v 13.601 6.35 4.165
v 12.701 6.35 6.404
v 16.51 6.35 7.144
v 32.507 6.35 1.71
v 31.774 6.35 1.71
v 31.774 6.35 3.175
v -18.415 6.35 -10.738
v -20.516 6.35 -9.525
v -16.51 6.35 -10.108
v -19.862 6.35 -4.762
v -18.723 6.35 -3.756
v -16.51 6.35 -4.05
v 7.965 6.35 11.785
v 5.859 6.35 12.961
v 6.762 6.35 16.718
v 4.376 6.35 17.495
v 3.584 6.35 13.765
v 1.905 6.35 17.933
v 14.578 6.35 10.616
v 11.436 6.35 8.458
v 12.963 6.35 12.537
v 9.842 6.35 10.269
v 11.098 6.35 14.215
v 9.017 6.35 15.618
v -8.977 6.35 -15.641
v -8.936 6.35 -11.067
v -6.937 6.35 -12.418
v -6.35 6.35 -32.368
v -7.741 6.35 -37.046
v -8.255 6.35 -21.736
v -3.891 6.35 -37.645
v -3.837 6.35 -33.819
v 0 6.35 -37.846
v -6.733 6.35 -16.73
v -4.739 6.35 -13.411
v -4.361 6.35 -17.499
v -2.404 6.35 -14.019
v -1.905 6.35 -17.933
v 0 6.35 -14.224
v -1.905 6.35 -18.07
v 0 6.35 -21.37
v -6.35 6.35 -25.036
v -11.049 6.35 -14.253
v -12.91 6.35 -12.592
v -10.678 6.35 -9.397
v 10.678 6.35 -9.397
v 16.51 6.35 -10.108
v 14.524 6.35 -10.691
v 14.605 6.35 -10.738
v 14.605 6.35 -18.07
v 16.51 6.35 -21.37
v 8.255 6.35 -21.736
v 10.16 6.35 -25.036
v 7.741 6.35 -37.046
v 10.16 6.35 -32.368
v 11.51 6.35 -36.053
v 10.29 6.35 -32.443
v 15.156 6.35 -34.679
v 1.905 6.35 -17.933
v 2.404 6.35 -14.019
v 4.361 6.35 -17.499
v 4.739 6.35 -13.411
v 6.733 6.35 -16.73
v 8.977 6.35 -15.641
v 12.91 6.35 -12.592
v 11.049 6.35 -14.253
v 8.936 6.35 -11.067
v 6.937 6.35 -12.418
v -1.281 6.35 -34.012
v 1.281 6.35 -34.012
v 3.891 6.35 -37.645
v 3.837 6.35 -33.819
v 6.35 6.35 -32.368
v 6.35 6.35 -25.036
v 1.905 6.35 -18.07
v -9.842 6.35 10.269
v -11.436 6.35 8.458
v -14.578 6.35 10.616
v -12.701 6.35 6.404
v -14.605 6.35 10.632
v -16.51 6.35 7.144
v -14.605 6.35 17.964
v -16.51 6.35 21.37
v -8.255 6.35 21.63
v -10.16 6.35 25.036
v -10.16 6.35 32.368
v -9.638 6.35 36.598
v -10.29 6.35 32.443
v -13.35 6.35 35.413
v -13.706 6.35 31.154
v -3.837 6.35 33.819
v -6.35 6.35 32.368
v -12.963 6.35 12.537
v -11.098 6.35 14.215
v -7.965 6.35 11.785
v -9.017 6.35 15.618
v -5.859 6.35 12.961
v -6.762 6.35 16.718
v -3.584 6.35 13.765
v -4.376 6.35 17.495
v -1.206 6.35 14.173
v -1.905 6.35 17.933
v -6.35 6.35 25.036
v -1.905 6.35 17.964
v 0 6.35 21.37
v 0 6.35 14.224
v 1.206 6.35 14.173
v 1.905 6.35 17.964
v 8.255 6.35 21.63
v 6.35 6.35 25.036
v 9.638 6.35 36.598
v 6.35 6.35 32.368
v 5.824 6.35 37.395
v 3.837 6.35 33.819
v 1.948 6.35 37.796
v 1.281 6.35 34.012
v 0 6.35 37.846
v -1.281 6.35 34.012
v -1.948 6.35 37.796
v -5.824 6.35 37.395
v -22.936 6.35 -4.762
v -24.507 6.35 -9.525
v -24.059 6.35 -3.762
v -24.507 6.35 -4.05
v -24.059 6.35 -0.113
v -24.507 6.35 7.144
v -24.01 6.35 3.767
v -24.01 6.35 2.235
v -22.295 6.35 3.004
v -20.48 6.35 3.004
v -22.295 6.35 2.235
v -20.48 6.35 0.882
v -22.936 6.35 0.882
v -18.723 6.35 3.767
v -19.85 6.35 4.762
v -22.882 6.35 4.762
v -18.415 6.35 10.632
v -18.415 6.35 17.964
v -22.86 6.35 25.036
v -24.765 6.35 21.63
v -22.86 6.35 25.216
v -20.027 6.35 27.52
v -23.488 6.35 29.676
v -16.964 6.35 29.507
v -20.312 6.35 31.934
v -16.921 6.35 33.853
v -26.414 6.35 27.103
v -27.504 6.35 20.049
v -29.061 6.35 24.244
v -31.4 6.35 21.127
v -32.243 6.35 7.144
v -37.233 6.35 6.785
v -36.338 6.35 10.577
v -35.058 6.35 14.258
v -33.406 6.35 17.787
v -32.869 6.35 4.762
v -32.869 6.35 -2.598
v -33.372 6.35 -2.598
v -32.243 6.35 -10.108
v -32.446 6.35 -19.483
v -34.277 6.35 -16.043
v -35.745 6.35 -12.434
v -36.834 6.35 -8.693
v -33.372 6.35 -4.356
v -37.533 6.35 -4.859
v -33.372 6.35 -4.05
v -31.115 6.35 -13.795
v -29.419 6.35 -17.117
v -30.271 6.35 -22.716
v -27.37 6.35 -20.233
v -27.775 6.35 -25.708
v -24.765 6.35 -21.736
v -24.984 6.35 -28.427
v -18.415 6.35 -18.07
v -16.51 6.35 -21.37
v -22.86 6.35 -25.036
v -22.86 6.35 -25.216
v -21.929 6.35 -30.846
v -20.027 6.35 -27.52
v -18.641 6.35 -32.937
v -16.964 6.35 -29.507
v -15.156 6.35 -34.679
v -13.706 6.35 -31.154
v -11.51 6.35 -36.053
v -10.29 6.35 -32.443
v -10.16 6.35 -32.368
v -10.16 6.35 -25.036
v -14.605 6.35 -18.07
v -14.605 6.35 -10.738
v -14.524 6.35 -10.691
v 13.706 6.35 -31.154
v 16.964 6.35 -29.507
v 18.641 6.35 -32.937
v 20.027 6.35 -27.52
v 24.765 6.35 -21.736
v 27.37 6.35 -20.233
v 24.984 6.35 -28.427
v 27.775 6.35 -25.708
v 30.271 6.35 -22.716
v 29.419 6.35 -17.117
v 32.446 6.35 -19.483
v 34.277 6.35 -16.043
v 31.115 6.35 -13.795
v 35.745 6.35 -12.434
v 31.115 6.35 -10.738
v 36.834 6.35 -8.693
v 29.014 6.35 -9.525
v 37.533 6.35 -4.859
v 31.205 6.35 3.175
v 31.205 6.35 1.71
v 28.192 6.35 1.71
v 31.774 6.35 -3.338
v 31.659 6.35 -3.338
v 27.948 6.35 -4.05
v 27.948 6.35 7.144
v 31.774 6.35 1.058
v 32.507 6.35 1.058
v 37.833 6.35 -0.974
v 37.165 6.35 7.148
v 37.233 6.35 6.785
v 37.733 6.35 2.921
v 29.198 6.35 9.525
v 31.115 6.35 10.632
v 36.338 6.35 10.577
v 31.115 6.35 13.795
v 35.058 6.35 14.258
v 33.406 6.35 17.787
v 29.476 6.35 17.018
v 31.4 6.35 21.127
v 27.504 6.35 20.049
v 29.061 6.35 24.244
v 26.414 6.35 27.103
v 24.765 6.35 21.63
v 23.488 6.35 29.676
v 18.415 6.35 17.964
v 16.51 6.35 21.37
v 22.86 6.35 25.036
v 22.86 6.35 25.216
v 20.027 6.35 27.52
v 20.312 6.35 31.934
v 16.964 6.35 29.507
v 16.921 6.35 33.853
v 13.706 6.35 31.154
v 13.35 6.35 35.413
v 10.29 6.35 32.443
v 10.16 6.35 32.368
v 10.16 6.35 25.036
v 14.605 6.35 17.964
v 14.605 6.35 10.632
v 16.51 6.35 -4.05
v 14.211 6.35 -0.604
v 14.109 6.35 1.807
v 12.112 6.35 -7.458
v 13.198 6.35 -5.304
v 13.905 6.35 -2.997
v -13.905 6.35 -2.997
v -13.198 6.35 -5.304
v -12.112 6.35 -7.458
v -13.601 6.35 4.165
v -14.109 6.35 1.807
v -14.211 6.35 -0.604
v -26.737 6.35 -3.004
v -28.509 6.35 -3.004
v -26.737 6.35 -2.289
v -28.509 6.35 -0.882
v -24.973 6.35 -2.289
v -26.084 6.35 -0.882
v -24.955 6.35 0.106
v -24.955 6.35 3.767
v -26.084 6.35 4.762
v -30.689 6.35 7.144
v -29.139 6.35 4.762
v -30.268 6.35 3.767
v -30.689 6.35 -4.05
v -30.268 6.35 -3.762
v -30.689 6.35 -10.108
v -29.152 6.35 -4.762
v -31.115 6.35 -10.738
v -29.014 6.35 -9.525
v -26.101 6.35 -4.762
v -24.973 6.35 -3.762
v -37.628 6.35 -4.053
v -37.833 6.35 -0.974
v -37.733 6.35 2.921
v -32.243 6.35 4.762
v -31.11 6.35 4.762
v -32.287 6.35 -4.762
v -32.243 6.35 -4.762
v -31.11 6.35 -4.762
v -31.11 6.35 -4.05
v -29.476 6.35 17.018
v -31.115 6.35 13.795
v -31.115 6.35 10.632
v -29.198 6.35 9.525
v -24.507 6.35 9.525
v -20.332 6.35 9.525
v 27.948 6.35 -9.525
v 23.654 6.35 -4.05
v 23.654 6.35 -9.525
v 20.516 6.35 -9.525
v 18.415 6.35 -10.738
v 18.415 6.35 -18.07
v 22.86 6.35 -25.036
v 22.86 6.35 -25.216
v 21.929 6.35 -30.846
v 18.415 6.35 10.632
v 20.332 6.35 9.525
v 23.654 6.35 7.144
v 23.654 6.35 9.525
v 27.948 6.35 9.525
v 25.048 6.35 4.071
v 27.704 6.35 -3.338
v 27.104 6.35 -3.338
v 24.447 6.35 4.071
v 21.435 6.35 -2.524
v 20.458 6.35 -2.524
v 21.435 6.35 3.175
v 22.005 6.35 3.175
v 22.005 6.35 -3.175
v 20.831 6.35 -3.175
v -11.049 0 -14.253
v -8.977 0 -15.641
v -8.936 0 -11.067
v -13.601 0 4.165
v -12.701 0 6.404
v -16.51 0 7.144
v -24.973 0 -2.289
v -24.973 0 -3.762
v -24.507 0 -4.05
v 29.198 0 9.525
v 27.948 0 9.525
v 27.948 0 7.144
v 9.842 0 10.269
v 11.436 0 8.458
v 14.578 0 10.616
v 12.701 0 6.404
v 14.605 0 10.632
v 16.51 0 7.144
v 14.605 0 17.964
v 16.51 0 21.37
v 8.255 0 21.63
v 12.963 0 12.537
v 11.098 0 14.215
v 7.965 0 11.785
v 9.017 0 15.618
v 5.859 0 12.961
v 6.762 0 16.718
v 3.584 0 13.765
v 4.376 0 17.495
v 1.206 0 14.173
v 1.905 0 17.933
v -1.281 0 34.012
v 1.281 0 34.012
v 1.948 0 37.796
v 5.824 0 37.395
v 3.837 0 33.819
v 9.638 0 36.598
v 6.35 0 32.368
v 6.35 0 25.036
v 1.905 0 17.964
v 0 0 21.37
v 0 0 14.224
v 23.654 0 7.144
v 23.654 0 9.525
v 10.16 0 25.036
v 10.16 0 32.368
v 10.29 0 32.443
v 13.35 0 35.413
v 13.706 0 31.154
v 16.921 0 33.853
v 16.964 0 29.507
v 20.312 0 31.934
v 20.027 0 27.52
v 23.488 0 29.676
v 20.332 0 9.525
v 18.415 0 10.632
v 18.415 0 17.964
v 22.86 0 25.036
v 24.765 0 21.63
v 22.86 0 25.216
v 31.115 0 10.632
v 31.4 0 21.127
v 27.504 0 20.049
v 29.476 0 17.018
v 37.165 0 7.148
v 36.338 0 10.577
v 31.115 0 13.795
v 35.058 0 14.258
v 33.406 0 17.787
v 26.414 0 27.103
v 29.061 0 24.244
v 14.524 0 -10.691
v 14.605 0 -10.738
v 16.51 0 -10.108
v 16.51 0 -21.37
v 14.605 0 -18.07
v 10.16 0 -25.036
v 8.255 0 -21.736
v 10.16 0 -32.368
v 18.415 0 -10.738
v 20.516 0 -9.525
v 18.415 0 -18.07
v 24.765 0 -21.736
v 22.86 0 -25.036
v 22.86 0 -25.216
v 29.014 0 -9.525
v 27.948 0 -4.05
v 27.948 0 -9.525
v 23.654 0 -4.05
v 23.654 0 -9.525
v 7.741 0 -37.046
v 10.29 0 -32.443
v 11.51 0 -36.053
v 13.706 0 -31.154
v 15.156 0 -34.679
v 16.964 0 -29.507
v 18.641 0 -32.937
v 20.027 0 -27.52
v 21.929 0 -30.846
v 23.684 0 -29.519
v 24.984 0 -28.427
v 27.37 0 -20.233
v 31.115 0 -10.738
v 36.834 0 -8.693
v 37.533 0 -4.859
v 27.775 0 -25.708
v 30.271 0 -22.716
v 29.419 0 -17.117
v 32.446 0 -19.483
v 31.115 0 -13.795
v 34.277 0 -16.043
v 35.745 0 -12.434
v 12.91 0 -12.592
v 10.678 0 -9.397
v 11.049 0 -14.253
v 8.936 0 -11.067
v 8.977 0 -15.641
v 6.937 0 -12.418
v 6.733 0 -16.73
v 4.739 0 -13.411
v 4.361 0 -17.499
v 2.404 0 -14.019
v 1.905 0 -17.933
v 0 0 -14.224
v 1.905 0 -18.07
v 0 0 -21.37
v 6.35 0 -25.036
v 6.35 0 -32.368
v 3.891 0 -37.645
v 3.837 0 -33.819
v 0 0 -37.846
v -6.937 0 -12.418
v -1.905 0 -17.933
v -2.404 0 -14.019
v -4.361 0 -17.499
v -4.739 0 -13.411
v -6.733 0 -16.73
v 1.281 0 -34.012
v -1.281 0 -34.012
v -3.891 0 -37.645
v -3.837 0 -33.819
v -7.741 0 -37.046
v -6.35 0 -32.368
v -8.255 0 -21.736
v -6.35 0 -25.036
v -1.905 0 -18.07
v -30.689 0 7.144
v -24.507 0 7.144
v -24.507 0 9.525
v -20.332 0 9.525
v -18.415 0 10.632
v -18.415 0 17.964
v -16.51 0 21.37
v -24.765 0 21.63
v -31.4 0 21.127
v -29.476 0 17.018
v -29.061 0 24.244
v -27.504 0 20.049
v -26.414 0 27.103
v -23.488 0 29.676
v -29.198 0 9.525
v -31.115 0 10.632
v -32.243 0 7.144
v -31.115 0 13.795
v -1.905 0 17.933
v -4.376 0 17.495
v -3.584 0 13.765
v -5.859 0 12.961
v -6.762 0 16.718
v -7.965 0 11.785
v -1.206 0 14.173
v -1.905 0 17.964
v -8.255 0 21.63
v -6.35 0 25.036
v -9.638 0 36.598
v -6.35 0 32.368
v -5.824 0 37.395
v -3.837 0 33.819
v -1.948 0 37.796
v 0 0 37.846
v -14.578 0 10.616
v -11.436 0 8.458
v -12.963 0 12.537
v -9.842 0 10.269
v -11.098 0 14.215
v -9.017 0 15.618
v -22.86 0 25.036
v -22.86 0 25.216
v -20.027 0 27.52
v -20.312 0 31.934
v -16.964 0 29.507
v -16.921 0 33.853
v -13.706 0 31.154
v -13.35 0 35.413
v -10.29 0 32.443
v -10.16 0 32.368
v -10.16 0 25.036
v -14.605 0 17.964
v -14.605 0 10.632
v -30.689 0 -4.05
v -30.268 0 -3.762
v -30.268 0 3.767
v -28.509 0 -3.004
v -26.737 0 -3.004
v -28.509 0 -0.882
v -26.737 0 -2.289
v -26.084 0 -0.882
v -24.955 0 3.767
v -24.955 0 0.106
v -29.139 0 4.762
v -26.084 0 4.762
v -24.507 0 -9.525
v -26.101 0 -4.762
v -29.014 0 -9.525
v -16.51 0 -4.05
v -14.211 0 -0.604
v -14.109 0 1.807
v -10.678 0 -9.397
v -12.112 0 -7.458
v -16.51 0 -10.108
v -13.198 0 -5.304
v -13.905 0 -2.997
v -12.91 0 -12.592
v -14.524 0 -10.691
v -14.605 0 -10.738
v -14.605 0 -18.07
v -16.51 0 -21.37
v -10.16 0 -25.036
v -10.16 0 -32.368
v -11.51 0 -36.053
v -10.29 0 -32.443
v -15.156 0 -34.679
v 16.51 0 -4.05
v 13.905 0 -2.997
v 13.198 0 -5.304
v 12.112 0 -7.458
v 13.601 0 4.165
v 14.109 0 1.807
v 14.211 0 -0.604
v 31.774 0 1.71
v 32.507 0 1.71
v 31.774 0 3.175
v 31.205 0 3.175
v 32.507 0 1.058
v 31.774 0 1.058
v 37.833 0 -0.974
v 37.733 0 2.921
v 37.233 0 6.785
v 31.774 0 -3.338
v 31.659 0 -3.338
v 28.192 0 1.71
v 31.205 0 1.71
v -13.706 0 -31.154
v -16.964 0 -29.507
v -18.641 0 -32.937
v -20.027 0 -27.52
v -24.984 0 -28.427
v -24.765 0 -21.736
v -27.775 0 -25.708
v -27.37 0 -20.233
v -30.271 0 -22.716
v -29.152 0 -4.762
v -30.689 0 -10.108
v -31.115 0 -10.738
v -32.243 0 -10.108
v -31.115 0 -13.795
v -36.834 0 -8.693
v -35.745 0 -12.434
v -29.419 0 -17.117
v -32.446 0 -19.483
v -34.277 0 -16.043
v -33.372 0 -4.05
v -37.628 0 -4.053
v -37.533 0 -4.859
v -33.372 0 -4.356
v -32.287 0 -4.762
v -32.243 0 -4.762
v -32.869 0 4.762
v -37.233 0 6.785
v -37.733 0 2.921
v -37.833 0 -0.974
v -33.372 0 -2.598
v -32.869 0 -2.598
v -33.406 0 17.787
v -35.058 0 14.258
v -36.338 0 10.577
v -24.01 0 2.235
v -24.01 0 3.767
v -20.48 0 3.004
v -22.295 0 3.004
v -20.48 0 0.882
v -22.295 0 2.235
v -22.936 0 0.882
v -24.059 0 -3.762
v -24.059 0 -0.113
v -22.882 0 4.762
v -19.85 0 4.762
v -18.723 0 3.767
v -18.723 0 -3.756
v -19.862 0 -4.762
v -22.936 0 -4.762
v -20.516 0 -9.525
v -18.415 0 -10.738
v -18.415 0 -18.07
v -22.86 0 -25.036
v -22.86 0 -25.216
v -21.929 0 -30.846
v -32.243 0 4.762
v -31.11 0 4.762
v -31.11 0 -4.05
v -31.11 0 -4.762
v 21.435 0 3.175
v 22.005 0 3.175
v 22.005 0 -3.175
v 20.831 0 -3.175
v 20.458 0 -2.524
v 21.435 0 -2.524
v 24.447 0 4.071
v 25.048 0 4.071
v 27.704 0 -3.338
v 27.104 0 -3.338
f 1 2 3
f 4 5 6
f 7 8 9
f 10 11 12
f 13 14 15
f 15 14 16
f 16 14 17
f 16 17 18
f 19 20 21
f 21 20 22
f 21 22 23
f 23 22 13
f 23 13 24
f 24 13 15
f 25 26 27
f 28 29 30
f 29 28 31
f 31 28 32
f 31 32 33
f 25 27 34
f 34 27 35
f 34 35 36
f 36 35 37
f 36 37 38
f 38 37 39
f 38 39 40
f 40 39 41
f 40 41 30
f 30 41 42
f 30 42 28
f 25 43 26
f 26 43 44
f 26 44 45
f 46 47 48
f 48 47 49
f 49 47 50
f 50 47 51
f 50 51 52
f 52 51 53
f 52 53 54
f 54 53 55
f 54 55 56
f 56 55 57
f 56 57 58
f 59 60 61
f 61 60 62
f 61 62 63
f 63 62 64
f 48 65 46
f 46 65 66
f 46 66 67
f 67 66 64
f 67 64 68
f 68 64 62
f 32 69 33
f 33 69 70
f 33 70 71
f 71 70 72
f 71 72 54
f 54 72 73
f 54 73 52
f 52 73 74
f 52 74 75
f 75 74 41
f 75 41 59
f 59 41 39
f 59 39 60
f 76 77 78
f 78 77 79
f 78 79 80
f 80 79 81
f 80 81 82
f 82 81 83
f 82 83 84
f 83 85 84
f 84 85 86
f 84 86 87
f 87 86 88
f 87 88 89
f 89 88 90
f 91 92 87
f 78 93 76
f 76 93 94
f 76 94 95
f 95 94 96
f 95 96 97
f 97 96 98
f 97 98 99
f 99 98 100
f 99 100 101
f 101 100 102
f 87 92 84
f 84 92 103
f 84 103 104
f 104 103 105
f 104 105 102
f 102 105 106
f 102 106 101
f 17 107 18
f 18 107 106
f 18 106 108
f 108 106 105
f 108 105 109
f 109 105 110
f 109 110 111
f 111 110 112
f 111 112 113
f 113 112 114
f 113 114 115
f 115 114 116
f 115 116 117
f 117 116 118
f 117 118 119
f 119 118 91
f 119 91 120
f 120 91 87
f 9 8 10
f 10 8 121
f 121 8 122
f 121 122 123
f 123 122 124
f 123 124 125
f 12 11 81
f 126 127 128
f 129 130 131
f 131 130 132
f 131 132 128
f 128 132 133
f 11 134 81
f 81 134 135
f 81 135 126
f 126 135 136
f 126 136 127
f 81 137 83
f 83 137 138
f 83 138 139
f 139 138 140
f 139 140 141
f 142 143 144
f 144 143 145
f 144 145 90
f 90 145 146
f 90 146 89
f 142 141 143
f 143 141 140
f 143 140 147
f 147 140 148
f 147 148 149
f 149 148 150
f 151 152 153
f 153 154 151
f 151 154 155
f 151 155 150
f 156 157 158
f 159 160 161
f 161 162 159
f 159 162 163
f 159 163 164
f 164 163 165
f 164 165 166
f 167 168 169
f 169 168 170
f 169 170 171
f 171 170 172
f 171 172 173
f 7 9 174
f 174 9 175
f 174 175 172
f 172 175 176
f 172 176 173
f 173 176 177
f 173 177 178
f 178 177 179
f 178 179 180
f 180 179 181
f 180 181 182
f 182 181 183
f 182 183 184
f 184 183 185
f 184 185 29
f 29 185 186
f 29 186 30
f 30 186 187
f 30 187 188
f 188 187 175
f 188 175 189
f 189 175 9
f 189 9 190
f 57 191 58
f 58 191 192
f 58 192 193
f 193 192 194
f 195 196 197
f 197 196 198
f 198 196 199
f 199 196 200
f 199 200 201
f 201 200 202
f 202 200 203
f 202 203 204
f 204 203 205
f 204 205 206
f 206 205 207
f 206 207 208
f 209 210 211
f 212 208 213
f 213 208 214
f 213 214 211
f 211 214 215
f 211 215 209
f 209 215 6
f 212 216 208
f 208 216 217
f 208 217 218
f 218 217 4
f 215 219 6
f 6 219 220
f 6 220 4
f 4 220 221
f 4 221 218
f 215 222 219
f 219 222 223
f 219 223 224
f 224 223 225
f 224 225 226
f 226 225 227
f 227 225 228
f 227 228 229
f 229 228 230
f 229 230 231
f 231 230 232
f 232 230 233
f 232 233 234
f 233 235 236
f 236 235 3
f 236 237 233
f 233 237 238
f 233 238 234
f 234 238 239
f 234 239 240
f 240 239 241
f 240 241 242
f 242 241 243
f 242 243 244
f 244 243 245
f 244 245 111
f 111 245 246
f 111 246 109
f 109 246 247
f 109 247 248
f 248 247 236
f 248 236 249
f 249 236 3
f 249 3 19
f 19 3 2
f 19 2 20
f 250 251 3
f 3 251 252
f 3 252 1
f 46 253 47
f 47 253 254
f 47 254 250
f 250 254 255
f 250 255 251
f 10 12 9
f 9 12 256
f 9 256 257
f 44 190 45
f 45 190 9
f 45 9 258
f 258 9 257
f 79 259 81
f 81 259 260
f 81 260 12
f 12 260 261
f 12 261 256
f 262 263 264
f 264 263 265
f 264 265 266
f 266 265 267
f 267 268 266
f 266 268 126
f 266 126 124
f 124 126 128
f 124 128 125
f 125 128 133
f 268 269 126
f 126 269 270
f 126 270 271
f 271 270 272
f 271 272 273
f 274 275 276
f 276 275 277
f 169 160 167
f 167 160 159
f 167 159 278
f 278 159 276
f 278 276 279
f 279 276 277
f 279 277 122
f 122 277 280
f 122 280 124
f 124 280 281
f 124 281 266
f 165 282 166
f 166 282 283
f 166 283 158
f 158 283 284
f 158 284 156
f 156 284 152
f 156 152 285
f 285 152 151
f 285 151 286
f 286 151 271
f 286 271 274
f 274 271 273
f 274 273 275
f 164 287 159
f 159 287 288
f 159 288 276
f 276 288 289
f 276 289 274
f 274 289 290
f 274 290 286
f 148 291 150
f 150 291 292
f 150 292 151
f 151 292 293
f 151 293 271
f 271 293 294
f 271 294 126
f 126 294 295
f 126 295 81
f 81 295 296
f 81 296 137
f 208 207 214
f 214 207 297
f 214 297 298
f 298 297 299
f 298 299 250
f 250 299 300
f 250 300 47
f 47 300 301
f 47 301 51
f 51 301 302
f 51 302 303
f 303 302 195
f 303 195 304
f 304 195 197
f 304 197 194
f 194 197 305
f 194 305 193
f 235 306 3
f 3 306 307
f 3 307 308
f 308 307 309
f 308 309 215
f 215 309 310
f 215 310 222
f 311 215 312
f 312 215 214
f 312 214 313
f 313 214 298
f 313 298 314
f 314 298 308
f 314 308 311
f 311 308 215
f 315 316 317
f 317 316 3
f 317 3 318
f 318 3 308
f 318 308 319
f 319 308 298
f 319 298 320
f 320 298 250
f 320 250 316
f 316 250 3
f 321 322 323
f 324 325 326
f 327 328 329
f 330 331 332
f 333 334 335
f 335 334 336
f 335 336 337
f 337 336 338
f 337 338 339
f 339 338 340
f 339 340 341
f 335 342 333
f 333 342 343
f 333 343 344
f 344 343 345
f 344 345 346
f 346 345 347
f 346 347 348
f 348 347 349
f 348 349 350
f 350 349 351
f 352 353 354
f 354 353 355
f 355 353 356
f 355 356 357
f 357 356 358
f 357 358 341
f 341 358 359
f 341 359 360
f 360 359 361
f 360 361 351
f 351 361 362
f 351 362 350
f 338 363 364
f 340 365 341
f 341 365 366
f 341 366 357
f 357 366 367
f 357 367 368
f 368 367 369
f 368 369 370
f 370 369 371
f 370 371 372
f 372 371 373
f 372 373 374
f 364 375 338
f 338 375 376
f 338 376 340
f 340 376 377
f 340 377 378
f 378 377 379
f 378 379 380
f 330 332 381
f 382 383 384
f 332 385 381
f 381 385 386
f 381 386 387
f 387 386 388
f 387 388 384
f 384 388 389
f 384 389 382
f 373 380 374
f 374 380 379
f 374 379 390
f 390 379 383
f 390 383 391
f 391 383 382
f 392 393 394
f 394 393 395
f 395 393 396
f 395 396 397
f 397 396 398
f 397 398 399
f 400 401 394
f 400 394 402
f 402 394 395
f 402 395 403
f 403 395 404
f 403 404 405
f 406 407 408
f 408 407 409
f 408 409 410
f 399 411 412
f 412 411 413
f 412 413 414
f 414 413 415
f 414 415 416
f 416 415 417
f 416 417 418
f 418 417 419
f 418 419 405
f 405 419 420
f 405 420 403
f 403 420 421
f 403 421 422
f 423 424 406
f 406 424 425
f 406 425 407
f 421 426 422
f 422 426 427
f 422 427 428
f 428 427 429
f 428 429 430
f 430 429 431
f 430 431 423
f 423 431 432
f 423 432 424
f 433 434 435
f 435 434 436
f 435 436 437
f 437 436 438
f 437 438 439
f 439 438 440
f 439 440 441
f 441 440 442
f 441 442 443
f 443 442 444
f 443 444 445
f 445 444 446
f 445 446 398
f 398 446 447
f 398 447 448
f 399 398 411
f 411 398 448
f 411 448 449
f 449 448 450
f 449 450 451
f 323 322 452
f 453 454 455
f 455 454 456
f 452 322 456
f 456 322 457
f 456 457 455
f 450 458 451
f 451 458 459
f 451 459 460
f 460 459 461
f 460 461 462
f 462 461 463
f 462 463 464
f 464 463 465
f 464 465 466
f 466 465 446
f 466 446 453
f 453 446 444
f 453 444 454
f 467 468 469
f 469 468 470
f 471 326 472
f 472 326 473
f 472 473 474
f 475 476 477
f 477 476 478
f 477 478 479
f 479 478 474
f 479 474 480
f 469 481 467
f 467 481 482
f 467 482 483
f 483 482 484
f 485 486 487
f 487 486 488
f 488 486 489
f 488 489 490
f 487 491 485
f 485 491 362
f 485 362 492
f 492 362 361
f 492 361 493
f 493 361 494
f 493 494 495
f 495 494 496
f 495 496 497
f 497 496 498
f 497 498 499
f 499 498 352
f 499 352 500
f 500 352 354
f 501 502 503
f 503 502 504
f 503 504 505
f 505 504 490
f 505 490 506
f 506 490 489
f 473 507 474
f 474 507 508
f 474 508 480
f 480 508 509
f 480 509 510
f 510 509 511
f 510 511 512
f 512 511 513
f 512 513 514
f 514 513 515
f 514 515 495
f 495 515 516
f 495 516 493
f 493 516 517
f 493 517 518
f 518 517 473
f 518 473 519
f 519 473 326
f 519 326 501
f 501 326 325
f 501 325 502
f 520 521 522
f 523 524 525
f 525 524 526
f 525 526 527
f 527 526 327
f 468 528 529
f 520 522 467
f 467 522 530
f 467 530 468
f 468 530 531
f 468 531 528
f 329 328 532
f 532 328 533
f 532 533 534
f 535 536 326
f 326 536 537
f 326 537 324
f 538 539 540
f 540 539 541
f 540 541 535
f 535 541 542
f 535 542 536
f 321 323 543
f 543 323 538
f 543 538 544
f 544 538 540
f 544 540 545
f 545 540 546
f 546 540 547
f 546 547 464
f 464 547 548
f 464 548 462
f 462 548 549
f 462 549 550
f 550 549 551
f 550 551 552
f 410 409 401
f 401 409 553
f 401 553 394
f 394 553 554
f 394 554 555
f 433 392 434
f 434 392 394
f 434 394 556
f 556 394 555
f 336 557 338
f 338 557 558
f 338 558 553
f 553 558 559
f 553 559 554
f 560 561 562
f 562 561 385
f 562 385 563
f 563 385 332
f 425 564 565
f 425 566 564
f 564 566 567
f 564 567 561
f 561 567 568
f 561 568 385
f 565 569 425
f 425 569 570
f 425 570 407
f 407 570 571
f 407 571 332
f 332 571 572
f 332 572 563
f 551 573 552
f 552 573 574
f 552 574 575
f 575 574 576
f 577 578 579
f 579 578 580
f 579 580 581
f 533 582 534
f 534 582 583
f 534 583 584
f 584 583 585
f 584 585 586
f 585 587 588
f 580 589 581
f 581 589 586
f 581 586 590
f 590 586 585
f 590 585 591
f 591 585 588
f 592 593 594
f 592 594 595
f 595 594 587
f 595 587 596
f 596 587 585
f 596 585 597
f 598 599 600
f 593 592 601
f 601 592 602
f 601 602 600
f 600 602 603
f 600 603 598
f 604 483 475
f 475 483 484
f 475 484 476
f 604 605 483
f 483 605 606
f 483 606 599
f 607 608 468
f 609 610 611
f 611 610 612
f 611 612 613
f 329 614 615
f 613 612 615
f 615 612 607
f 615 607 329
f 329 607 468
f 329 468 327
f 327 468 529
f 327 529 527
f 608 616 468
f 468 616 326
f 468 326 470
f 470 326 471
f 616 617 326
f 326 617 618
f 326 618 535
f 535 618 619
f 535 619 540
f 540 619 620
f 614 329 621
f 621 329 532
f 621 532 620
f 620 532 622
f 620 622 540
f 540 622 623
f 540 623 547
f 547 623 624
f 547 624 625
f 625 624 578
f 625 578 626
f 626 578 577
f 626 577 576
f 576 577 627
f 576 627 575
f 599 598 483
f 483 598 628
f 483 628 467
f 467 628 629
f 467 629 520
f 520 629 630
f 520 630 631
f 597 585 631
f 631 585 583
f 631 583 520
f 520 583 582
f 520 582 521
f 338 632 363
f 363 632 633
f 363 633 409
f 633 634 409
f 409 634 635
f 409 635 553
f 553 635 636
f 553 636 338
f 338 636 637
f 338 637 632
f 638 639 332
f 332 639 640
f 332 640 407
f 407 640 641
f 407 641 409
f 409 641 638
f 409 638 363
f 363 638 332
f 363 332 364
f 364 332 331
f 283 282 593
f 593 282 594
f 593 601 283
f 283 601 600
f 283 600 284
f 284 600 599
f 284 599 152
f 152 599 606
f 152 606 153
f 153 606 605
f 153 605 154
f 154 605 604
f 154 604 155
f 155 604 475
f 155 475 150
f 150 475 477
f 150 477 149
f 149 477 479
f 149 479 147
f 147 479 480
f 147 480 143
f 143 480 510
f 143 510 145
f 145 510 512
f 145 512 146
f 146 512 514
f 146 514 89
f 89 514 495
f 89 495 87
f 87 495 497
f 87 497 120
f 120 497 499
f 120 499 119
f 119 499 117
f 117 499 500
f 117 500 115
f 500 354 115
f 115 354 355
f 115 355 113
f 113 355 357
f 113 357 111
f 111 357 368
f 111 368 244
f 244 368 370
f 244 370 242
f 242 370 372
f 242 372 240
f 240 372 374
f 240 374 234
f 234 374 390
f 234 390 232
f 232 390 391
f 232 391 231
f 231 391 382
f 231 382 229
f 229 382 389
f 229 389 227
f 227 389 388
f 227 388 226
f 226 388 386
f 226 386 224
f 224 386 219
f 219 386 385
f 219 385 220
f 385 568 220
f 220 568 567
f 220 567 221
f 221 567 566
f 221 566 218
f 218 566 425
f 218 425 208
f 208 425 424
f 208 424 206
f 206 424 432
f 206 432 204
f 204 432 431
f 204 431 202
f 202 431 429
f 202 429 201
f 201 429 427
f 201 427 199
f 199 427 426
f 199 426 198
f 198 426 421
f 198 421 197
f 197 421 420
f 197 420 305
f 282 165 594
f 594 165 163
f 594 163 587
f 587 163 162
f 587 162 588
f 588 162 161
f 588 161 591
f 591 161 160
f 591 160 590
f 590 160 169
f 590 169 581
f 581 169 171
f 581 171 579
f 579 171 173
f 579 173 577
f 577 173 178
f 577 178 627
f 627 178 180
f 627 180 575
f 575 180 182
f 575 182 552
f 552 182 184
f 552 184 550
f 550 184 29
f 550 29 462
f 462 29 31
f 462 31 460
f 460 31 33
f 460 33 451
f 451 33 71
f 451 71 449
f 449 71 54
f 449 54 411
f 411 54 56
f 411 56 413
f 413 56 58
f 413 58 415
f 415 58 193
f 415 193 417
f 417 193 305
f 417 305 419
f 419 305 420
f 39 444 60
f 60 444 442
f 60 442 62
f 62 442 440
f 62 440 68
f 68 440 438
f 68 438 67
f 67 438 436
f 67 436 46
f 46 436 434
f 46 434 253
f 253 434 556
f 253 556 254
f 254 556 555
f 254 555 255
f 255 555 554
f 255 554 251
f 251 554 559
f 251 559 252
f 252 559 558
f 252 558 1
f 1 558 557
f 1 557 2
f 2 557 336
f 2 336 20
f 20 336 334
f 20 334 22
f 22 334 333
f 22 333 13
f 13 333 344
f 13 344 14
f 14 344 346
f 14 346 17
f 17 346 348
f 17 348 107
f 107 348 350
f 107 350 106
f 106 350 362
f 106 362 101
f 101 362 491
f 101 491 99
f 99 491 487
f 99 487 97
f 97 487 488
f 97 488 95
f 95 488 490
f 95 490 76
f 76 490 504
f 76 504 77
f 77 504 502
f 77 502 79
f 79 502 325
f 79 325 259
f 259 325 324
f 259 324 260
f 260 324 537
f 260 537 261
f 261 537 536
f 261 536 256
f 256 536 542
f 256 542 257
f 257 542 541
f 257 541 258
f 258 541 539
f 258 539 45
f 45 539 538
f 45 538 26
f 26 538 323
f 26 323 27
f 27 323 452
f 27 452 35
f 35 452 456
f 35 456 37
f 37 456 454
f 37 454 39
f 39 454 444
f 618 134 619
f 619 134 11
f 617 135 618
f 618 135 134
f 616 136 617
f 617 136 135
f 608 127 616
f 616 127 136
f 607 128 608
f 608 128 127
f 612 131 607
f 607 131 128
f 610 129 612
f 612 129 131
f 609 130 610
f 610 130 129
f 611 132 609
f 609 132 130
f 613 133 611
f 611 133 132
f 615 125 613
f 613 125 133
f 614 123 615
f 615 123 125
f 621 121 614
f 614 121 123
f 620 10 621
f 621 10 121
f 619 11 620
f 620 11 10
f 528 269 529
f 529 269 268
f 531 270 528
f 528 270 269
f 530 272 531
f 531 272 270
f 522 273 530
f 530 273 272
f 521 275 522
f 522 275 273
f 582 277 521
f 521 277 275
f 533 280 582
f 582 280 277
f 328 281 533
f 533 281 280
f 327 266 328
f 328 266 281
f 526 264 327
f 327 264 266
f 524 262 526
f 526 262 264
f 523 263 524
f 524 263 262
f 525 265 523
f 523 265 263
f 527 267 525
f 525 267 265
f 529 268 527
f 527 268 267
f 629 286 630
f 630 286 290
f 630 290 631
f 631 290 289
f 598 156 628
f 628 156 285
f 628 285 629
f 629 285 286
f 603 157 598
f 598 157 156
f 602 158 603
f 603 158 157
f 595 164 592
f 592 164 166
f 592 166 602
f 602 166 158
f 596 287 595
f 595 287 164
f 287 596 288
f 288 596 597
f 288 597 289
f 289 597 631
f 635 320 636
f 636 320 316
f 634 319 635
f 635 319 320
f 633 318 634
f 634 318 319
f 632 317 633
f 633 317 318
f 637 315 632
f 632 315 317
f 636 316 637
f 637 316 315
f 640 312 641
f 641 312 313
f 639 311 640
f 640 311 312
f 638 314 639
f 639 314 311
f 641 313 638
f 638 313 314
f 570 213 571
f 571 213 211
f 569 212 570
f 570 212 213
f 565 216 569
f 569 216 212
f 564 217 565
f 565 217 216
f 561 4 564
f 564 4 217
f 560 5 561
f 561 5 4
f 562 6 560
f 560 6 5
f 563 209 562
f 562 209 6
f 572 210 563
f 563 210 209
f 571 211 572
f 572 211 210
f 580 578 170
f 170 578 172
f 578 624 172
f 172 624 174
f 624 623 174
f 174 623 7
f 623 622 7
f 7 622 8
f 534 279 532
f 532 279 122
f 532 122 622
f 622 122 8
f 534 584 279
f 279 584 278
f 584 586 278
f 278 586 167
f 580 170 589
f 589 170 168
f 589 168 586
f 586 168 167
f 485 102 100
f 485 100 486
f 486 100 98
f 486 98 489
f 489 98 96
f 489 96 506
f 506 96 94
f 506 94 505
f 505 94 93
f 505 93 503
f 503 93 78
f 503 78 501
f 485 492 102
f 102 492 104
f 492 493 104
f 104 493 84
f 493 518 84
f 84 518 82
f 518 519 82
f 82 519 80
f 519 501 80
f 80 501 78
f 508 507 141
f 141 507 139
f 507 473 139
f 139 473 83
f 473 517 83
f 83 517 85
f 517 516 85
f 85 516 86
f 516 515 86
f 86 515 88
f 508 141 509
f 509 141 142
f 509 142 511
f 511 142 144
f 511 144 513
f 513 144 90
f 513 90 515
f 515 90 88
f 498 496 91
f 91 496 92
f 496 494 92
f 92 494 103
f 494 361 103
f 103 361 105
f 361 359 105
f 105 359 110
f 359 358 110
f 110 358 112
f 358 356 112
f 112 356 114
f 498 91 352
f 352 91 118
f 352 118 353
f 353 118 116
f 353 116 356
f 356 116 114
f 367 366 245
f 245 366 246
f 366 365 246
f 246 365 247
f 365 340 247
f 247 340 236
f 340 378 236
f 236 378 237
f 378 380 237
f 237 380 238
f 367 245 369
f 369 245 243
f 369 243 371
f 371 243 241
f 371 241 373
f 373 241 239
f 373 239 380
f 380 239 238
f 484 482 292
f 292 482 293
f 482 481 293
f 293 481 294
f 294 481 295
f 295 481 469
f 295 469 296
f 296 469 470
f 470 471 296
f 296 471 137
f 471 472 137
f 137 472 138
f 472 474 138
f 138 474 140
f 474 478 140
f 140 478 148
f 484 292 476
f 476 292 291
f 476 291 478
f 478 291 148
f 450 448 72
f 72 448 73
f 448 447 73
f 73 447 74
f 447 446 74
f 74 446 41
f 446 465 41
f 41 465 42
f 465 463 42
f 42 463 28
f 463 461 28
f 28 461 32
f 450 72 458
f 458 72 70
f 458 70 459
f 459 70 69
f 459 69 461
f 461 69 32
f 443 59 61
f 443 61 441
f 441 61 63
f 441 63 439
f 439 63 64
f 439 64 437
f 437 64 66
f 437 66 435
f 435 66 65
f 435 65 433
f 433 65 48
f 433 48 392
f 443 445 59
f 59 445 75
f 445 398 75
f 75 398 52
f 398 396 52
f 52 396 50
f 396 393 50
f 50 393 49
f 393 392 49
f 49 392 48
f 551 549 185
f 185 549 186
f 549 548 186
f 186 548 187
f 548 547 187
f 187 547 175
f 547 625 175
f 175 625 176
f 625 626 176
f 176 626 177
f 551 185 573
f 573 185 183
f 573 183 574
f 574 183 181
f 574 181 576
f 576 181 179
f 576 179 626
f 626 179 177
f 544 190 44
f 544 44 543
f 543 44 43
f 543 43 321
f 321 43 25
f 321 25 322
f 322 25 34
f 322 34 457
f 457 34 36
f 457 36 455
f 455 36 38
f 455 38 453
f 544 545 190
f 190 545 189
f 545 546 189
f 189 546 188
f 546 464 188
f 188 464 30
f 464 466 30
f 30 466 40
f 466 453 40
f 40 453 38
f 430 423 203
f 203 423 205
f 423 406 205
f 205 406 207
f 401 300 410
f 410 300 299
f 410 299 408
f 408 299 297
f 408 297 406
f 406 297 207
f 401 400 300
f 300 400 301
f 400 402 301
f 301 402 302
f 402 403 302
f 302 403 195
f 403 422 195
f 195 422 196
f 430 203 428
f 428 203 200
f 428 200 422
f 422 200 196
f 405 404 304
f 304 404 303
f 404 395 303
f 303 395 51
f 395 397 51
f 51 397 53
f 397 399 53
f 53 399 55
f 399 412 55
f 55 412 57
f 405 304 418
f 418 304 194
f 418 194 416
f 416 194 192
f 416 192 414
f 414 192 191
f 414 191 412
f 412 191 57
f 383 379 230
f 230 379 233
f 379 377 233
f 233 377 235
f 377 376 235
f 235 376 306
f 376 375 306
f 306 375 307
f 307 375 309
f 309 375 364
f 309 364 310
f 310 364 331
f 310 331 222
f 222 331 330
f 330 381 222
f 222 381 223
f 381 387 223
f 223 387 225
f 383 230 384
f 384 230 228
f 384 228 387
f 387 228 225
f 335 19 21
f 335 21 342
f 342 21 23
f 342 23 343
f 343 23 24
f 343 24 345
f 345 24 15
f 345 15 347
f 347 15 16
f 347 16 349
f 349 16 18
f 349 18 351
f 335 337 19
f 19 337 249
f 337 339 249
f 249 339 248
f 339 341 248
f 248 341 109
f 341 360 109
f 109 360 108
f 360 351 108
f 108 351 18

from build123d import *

# Parameters (mm, degrees)
SKETCH1_R               = 37.846
SKETCH1_R_2             = 14.224
BOSS_EXTRUDE1_DEPTH     = 6.35
CUT_EXTRUDE1_DEPTH      = 1
CUT_EXTRUDE1_DEPTH_BACK = 7.35
CUT_EXTRUDE2_DEPTH      = 1
CUT_EXTRUDE2_DEPTH_BACK = 7.35


with BuildPart() as part:
    # Sketch1 → Boss-Extrude1 (new body)
    with BuildSketch(Plane(origin=(0, 0, 0), x_dir=(1, 0, 0), z_dir=(0, 1, 0))):
        Circle(SKETCH1_R)
        Circle(SKETCH1_R_2, mode=Mode.SUBTRACT)
    extrude(amount=BOSS_EXTRUDE1_DEPTH)

    # Sketch2 → Cut-Extrude1 (cut, two sides)
    with BuildSketch(Plane(origin=(0, 6.35, 0), x_dir=(1, 0, 0), z_dir=(0, 1, 0))) as cut_extrude1_sk:
        Polygon((-18.723278008, -3.767243493), (-19.849678423, -4.7625), (-22.882156733, -4.7625), (-24.01035364, -3.767243493), (-24.01035364, -2.234835911), (-22.294703885, -2.234835911), (-22.294703885, -3.00373444), (-20.480247077, -3.00373444), (-20.480247077, -0.882077518), (-22.93605149, -0.882077518), (-24.058858921, 0.113178989), (-24.058858921, 3.761854017), (-22.93605149, 4.7625), (-19.862253866, 4.7625), (-18.723278008, 3.756464542), align=None)
        Polygon((-24.955308374, -3.767243493), (-26.083505281, -4.7625), (-29.139337986, -4.7625), (-30.267534892, -3.767243493), (-30.267534892, 3.761854017), (-29.151913429, 4.7625), (-26.1014702, 4.7625), (-24.973273293, 3.761854017), (-24.973273293, 2.288730668), (-26.737428329, 2.288730668), (-26.737428329, 3.00373444), (-28.508769332, 3.00373444), (-28.508769332, 0.882077518), (-26.083505281, 0.882077518), (-24.955308374, -0.105993022), align=None)
        Polygon((-31.110089589, -4.7625), (-32.868855149, -4.7625), (-32.868855149, 2.597727273), (-33.371872878, 2.597727273), (-33.371872878, 4.356492833), (-32.286791777, 4.7625), (-31.110089589, 4.7625), align=None)
        Polygon((20.831103766, 3.175), (22.005192308, 3.175), (22.005192308, -3.175), (21.435320513, -3.175), (21.435320513, 2.523717949), (20.458397436, 2.523717949), align=None)
        Polygon((27.703910256, 3.337820513), (25.047900641, -4.070512821), (24.4475, -4.070512821), (27.103509615, 3.337820513), align=None)
        Polygon((31.658667869, 3.337820513), (31.774423077, 3.337820513), (31.774423077, -1.058333333), (32.507115385, -1.058333333), (32.507115385, -1.709615385), (31.774423077, -1.709615385), (31.774423077, -3.175), (31.204551282, -3.175), (31.204551282, -1.709615385), (28.192371795, -1.709615385), align=None)
    extrude(amount=CUT_EXTRUDE1_DEPTH, mode=Mode.SUBTRACT)
    extrude(cut_extrude1_sk.sketch, amount=-CUT_EXTRUDE1_DEPTH_BACK, mode=Mode.SUBTRACT)

    # Sketch3 → Cut-Extrude2 (cut, two sides)
    with BuildSketch(Plane(origin=(0, 6.35, 0), x_dir=(1, 0, 0), z_dir=(0, 1, 0))) as cut_extrude2_sk:
        with BuildLine():
            Line((14.605, -10.631905207), (14.578021506, -10.616329166))
            ThreePointArc((14.578021506, -10.616329166), (9.017, -15.617902132), (1.905, -17.933101544))
            Line((1.905, -17.933101544), (1.905, -17.964253626))
            Line((1.905, -17.964253626), (8.255, -21.630427835))
            Line((8.255, -21.630427835), (14.605, -17.964253626))
            Line((14.605, -17.964253626), (14.605, -10.631905207))
        make_face()
        with BuildLine():
            ThreePointArc((-1.905, -17.933101544), (-9.017, -15.617902132), (-14.578021506, -10.616329166))
            Line((-14.578021506, -10.616329166), (-14.605, -10.631905207))
            Line((-14.605, -10.631905207), (-14.605, -17.964253626))
            Line((-14.605, -17.964253626), (-8.255, -21.630427835))
            Line((-8.255, -21.630427835), (-1.905, -17.964253626))
            Line((-1.905, -17.964253626), (-1.905, -17.933101544))
        make_face()
        with BuildLine():
            Line((29.197783942, -9.525), (20.332216058, -9.525))
            Line((20.332216058, -9.525), (18.415, -10.631905207))
            Line((18.415, -10.631905207), (18.415, -17.964253626))
            Line((18.415, -17.964253626), (24.765, -21.630427835))
            Line((24.765, -21.630427835), (27.504447445, -20.048807115))
            ThreePointArc((27.504447445, -20.048807115), (29.476040643, -17.018), (31.115, -13.795146647))
            Line((31.115, -13.795146647), (31.115, -10.631905207))
            Line((31.115, -10.631905207), (29.197783942, -9.525))
        make_face()
        with BuildLine():
            Line((-18.415, -10.631905207), (-20.332216058, -9.525))
            Line((-20.332216058, -9.525), (-29.197783942, -9.525))
            Line((-29.197783942, -9.525), (-31.115, -10.631905207))
            Line((-31.115, -10.631905207), (-31.115, -13.795146647))
            ThreePointArc((-31.115, -13.795146647), (-29.476040643, -17.018), (-27.504447445, -20.048807115))
            Line((-27.504447445, -20.048807115), (-24.765, -21.630427835))
            Line((-24.765, -21.630427835), (-18.415, -17.964253626))
            Line((-18.415, -17.964253626), (-18.415, -10.631905207))
        make_face()
        with BuildLine():
            ThreePointArc((1.905, 17.933101544), (8.977045814, 15.640901651), (14.523553183, 10.690723032))
            Line((14.523553183, 10.690723032), (14.605, 10.737746374))
            Line((14.605, 10.737746374), (14.605, 18.070094793))
            Line((14.605, 18.070094793), (8.255, 21.736269002))
            Line((8.255, 21.736269002), (1.905, 18.070094793))
            Line((1.905, 18.070094793), (1.905, 17.933101544))
        make_face()
        with BuildLine():
            Line((-14.605, 10.737746374), (-14.523553183, 10.690723032))
            ThreePointArc((-14.523553183, 10.690723032), (-8.977045814, 15.640901651), (-1.905, 17.933101544))
            Line((-1.905, 17.933101544), (-1.905, 18.070094793))
            Line((-1.905, 18.070094793), (-8.255, 21.736269002))
            Line((-8.255, 21.736269002), (-14.605, 18.070094793))
            Line((-14.605, 18.070094793), (-14.605, 10.737746374))
        make_face()
        with BuildLine():
            Line((18.415, 10.737746374), (20.515538337, 9.525))
            Line((20.515538337, 9.525), (29.014461663, 9.525))
            Line((29.014461663, 9.525), (31.115, 10.737746374))
            Line((31.115, 10.737746374), (31.115, 13.795146647))
            ThreePointArc((31.115, 13.795146647), (29.418907432, 17.11657622), (27.369604296, 20.232500011))
            Line((27.369604296, 20.232500011), (24.765, 21.736269002))
            Line((24.765, 21.736269002), (18.415, 18.070094793))
            Line((18.415, 18.070094793), (18.415, 10.737746374))
        make_face()
        with BuildLine():
            Line((-29.014461663, 9.525), (-20.515538337, 9.525))
            Line((-20.515538337, 9.525), (-18.415, 10.737746374))
            Line((-18.415, 10.737746374), (-18.415, 18.070094793))
            Line((-18.415, 18.070094793), (-24.765, 21.736269002))
            Line((-24.765, 21.736269002), (-27.369604296, 20.232500011))
            ThreePointArc((-27.369604296, 20.232500011), (-29.418907432, 17.11657622), (-31.115, 13.795146647))
            Line((-31.115, 13.795146647), (-31.115, 10.737746374))
            Line((-31.115, 10.737746374), (-29.014461663, 9.525))
        make_face()
        with BuildLine():
            ThreePointArc((10.290035143, -32.443250034), (16.964310844, -29.506972965), (22.86, -25.216456849))
            Line((22.86, -25.216456849), (22.86, -25.035825791))
            Line((22.86, -25.035825791), (16.51, -21.369651581))
            Line((16.51, -21.369651581), (10.16, -25.035825791))
            Line((10.16, -25.035825791), (10.16, -32.368174209))
            Line((10.16, -32.368174209), (10.290035143, -32.443250034))
        make_face()
        with BuildLine():
            Line((-22.86, -25.035825791), (-22.86, -25.216456849))
            ThreePointArc((-22.86, -25.216456849), (-16.964310844, -29.506972965), (-10.290035143, -32.443250034))
            Line((-10.290035143, -32.443250034), (-10.16, -32.368174209))
            Line((-10.16, -32.368174209), (-10.16, -25.035825791))
            Line((-10.16, -25.035825791), (-16.51, -21.369651581))
            Line((-16.51, -21.369651581), (-22.86, -25.035825791))
        make_face()
        with BuildLine():
            ThreePointArc((-3.837056844, -33.819022617), (0, -34.036), (3.837056844, -33.819022617))
            Line((3.837056844, -33.819022617), (6.35, -32.368174209))
            Line((6.35, -32.368174209), (6.35, -25.035825791))
            Line((6.35, -25.035825791), (0, -21.369651581))
            Line((0, -21.369651581), (-6.35, -25.035825791))
            Line((-6.35, -25.035825791), (-6.35, -32.368174209))
            Line((-6.35, -32.368174209), (-3.837056844, -33.819022617))
        make_face()
        with BuildLine():
            Line((22.86, 25.035825791), (22.86, 25.216456849))
            ThreePointArc((22.86, 25.216456849), (16.964310844, 29.506972965), (10.290035143, 32.443250034))
            Line((10.290035143, 32.443250034), (10.16, 32.368174209))
            Line((10.16, 32.368174209), (10.16, 25.035825791))
            Line((10.16, 25.035825791), (16.51, 21.369651581))
            Line((16.51, 21.369651581), (22.86, 25.035825791))
        make_face()
        with BuildLine():
            ThreePointArc((-10.290035143, 32.443250034), (-16.964310844, 29.506972965), (-22.86, 25.216456849))
            Line((-22.86, 25.216456849), (-22.86, 25.035825791))
            Line((-22.86, 25.035825791), (-16.51, 21.369651581))
            Line((-16.51, 21.369651581), (-10.16, 25.035825791))
            Line((-10.16, 25.035825791), (-10.16, 32.368174209))
            Line((-10.16, 32.368174209), (-10.290035143, 32.443250034))
        make_face()
        with BuildLine():
            Line((6.35, 32.368174209), (3.837056844, 33.819022617))
            ThreePointArc((3.837056844, 33.819022617), (0, 34.036), (-3.837056844, 33.819022617))
            Line((-3.837056844, 33.819022617), (-6.35, 32.368174209))
            Line((-6.35, 32.368174209), (-6.35, 25.035825791))
            Line((-6.35, 25.035825791), (0, 21.369651581))
            Line((0, 21.369651581), (6.35, 25.035825791))
            Line((6.35, 25.035825791), (6.35, 32.368174209))
        make_face()
    extrude(amount=CUT_EXTRUDE2_DEPTH, mode=Mode.SUBTRACT)
    extrude(cut_extrude2_sk.sketch, amount=-CUT_EXTRUDE2_DEPTH_BACK, mode=Mode.SUBTRACT)


solid = part.part
